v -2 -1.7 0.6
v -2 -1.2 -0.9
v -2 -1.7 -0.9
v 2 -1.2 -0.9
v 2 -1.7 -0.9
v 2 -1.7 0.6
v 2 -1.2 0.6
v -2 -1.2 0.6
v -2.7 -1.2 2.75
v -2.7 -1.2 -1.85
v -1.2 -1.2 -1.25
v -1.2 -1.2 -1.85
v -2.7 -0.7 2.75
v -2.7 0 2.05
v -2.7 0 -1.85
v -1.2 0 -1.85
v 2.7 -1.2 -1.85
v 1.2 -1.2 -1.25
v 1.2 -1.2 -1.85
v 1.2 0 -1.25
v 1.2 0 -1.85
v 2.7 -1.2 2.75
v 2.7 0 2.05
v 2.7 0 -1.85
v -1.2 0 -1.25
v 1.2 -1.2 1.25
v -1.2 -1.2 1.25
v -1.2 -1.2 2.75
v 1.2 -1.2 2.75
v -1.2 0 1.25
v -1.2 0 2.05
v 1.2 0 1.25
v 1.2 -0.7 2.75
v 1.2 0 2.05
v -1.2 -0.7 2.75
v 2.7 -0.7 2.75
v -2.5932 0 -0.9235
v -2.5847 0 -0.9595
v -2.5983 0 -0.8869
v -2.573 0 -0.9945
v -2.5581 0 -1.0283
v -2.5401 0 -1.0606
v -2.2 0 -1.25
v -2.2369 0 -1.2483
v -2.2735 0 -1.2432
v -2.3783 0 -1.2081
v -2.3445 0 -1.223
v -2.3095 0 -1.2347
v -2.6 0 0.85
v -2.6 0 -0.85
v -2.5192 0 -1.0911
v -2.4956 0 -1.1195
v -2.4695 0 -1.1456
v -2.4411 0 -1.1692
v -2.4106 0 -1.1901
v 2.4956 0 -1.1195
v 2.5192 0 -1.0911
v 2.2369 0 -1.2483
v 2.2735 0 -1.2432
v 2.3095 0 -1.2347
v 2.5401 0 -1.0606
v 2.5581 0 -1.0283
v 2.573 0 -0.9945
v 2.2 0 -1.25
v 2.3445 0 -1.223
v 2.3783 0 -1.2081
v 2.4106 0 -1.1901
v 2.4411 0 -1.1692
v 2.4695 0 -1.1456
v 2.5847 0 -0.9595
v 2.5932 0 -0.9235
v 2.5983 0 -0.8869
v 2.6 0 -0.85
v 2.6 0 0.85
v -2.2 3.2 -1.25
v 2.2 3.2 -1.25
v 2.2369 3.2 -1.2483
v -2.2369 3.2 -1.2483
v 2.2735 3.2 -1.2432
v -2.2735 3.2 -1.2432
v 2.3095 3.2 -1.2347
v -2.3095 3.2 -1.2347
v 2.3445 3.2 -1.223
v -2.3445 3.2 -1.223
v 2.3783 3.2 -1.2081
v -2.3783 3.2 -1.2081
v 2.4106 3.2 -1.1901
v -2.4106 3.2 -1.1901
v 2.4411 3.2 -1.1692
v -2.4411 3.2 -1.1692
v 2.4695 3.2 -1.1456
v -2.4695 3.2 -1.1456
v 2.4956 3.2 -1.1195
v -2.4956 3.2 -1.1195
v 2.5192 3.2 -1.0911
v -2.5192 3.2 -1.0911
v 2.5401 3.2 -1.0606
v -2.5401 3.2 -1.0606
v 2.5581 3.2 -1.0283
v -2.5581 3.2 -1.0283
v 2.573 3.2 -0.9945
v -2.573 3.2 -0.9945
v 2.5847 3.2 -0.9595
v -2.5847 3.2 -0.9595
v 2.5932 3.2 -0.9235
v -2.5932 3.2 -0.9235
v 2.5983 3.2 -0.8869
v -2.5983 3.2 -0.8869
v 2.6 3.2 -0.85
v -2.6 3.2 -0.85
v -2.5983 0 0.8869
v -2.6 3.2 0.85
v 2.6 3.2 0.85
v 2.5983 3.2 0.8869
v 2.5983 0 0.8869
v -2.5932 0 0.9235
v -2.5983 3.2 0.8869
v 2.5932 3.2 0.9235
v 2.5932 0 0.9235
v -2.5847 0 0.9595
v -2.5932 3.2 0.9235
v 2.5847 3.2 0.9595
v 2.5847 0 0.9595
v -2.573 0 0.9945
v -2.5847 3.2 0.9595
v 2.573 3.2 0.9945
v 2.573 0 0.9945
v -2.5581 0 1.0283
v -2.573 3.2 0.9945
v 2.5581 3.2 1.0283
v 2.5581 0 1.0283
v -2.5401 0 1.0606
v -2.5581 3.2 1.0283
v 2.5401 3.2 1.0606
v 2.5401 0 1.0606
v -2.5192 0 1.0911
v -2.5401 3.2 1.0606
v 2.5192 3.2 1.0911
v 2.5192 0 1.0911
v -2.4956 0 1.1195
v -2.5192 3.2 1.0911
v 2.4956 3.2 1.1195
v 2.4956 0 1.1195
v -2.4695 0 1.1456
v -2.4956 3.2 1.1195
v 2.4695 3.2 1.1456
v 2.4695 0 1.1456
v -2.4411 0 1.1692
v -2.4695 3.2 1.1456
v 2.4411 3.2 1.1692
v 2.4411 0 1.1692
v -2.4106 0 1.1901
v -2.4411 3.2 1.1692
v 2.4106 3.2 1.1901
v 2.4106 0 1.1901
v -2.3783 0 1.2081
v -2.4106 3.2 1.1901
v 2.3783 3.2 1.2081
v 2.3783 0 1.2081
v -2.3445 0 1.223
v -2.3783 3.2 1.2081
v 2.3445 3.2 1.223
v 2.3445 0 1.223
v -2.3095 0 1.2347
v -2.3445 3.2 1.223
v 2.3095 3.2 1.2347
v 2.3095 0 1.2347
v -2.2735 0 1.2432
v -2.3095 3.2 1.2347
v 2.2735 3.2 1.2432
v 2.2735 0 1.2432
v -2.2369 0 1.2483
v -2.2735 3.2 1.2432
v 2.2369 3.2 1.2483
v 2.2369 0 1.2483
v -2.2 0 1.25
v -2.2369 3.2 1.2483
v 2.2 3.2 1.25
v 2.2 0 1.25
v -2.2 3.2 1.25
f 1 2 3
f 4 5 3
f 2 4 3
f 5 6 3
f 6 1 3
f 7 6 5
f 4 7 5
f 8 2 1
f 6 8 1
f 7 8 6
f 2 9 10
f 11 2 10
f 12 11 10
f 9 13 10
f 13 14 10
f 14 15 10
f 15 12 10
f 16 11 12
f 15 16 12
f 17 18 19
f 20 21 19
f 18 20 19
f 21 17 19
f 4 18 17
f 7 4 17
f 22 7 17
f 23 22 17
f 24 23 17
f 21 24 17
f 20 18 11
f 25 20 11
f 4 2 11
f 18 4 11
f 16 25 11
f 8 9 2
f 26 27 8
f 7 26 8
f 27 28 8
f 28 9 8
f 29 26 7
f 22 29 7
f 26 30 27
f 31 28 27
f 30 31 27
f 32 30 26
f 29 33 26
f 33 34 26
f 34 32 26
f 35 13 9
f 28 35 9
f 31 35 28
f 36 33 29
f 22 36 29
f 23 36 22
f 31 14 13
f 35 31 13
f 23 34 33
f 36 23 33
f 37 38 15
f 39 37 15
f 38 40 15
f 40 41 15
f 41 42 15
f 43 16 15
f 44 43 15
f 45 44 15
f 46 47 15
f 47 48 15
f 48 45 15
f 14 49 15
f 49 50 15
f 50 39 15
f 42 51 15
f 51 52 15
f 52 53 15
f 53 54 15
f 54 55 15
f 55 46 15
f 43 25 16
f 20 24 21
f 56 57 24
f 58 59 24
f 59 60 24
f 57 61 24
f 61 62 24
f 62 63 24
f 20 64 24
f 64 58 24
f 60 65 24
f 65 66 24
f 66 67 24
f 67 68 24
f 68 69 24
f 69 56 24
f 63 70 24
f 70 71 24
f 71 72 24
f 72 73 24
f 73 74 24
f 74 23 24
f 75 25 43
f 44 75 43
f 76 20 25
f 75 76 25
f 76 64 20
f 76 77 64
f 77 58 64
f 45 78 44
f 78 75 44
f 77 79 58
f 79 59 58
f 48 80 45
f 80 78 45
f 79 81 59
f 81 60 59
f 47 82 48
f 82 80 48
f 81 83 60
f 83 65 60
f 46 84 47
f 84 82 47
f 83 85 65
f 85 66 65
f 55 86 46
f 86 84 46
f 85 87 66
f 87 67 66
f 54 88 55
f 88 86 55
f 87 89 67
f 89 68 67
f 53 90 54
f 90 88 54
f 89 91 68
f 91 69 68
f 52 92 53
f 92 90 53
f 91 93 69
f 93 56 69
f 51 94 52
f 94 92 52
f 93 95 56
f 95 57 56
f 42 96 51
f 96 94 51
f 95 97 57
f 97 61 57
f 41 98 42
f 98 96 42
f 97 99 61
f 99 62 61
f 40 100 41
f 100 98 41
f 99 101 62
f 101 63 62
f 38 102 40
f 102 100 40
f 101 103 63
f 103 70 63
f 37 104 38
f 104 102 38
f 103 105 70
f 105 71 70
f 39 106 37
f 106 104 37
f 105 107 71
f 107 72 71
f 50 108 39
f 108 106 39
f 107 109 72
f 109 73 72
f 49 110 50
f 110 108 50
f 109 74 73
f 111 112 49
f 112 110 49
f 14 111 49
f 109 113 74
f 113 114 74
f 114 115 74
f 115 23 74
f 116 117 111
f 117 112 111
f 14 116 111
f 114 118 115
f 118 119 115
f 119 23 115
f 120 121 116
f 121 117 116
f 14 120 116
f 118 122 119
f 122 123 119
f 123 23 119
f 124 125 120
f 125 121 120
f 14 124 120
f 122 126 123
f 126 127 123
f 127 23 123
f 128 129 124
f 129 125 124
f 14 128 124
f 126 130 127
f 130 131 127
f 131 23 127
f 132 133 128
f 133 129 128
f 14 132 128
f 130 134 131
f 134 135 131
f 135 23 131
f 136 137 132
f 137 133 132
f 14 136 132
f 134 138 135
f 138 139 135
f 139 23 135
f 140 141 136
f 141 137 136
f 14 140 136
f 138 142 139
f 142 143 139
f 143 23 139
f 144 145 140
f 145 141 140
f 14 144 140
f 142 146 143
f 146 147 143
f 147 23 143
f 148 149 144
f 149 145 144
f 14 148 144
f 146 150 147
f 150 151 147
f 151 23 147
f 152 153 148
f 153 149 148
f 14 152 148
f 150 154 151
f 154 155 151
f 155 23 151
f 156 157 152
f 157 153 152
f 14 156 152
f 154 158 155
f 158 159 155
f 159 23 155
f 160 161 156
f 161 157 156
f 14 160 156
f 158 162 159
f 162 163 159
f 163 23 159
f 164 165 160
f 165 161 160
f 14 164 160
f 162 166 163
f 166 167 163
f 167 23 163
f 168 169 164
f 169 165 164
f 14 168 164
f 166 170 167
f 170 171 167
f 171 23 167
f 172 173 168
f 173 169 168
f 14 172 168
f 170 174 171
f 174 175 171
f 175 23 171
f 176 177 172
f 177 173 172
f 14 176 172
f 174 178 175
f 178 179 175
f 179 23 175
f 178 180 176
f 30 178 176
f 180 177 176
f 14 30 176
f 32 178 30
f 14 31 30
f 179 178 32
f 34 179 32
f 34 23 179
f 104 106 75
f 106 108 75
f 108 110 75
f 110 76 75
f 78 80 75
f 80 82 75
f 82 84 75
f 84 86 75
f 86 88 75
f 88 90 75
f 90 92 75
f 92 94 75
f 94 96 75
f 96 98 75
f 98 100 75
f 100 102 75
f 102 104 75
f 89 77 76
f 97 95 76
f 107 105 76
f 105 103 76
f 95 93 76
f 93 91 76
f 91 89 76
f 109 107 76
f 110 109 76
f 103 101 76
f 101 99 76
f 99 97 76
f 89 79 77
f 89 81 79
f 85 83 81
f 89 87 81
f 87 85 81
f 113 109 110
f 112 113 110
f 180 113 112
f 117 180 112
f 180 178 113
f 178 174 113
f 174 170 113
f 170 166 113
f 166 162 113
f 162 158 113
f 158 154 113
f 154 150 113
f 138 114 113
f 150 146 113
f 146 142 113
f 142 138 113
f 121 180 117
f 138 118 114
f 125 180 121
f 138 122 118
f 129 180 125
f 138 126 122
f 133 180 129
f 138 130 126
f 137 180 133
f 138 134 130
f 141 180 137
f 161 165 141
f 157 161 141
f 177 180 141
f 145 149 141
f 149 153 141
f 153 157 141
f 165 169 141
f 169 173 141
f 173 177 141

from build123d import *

# Parameters (mm, degrees)
EXTRUDE_3_DEPTH      = 3.2
EXTRUDE_3_DEPTH_BACK = 1.2
SKETCH_2_W           = 5.4
SKETCH_2_H           = 2.5
EXTRUDE_4_DEPTH      = 1.2
SKETCH_5_W           = 4
SKETCH_5_H           = 1.5
EXTRUDE_7_DEPTH      = 0.5
SKETCH_6_W           = 1.5
SKETCH_6_H           = 1.2
EXTRUDE_8_DEPTH      = 0.6
SKETCH_7_W           = 1.5
SKETCH_7_H           = 1.2
EXTRUDE_9_DEPTH      = 1.5
CHAMFER_2_SIZE       = 0.7


with BuildPart() as part:
    # 草图1 → 凸台-拉伸3 (new, two sides: drawn at the far end of the back side and taken through both)
    with BuildSketch(Plane(origin=(0, 0, 0), x_dir=(1, 0, 0), z_dir=(0, 1, 0)).offset(-EXTRUDE_3_DEPTH_BACK)):
        with BuildLine():
            Line((-2.6, 0.85), (-2.6, -0.85))
            ThreePointArc((-2.6, -0.85), (-2.482842712, -1.132842712), (-2.2, -1.25))
            Line((-2.2, -1.25), (2.2, -1.25))
            ThreePointArc((2.2, -1.25), (2.482842712, -1.132842712), (2.6, -0.85))
            Line((2.6, -0.85), (2.6, 0.85))
            ThreePointArc((2.6, 0.85), (2.482842712, 1.132842712), (2.2, 1.25))
            Line((2.2, 1.25), (-2.2, 1.25))
            ThreePointArc((-2.2, 1.25), (-2.482842712, 1.132842712), (-2.6, 0.85))
        make_face()
    extrude(amount=EXTRUDE_3_DEPTH + EXTRUDE_3_DEPTH_BACK)

    # 草图2 → 凸台-拉伸4 (add)
    with BuildSketch(Plane(origin=(0, 0, 0), x_dir=(1, 0, 0), z_dir=(0, 1, 0))):
        Rectangle(SKETCH_2_W, SKETCH_2_H)
    extrude(amount=-EXTRUDE_4_DEPTH)

    # 草图5 → 凸台-拉伸7 (add)
    with BuildSketch(Plane(origin=(0, -1.2, 0), x_dir=(-1, 0, 0), z_dir=(0, -1, 0))):
        with Locations((0, 0.15)):
            Rectangle(SKETCH_5_W, SKETCH_5_H)
    extrude(amount=EXTRUDE_7_DEPTH)

    # 草图6 → 凸台-拉伸8 (add)
    with BuildSketch(Plane(origin=(0, 0, -1.25), x_dir=(-1, 0, 0), z_dir=(0, 0, -1))):
        with Locations((1.95, -0.6)):
            Rectangle(SKETCH_6_W, SKETCH_6_H)
        with Locations((-1.95, -0.6)):
            Rectangle(SKETCH_6_W, SKETCH_6_H)
    extrude(amount=EXTRUDE_8_DEPTH)

    # 草图7 → 凸台-拉伸9 (add)
    with BuildSketch(Plane.XY.offset(1.25)):
        with Locations((1.95, -0.6)):
            Rectangle(SKETCH_7_W, SKETCH_7_H)
        with Locations((-1.95, -0.6)):
            Rectangle(SKETCH_7_W, SKETCH_7_H)
    extrude(amount=EXTRUDE_9_DEPTH)

    # 倒角2
    chamfer_2_edges = [part.edges().sort_by_distance(p)[0] for p in [
        (1.95, 0, 2.75),
        (-1.95, 0, 2.75),
    ]]
    chamfer(chamfer_2_edges, length=CHAMFER_2_SIZE)


solid = part.part
